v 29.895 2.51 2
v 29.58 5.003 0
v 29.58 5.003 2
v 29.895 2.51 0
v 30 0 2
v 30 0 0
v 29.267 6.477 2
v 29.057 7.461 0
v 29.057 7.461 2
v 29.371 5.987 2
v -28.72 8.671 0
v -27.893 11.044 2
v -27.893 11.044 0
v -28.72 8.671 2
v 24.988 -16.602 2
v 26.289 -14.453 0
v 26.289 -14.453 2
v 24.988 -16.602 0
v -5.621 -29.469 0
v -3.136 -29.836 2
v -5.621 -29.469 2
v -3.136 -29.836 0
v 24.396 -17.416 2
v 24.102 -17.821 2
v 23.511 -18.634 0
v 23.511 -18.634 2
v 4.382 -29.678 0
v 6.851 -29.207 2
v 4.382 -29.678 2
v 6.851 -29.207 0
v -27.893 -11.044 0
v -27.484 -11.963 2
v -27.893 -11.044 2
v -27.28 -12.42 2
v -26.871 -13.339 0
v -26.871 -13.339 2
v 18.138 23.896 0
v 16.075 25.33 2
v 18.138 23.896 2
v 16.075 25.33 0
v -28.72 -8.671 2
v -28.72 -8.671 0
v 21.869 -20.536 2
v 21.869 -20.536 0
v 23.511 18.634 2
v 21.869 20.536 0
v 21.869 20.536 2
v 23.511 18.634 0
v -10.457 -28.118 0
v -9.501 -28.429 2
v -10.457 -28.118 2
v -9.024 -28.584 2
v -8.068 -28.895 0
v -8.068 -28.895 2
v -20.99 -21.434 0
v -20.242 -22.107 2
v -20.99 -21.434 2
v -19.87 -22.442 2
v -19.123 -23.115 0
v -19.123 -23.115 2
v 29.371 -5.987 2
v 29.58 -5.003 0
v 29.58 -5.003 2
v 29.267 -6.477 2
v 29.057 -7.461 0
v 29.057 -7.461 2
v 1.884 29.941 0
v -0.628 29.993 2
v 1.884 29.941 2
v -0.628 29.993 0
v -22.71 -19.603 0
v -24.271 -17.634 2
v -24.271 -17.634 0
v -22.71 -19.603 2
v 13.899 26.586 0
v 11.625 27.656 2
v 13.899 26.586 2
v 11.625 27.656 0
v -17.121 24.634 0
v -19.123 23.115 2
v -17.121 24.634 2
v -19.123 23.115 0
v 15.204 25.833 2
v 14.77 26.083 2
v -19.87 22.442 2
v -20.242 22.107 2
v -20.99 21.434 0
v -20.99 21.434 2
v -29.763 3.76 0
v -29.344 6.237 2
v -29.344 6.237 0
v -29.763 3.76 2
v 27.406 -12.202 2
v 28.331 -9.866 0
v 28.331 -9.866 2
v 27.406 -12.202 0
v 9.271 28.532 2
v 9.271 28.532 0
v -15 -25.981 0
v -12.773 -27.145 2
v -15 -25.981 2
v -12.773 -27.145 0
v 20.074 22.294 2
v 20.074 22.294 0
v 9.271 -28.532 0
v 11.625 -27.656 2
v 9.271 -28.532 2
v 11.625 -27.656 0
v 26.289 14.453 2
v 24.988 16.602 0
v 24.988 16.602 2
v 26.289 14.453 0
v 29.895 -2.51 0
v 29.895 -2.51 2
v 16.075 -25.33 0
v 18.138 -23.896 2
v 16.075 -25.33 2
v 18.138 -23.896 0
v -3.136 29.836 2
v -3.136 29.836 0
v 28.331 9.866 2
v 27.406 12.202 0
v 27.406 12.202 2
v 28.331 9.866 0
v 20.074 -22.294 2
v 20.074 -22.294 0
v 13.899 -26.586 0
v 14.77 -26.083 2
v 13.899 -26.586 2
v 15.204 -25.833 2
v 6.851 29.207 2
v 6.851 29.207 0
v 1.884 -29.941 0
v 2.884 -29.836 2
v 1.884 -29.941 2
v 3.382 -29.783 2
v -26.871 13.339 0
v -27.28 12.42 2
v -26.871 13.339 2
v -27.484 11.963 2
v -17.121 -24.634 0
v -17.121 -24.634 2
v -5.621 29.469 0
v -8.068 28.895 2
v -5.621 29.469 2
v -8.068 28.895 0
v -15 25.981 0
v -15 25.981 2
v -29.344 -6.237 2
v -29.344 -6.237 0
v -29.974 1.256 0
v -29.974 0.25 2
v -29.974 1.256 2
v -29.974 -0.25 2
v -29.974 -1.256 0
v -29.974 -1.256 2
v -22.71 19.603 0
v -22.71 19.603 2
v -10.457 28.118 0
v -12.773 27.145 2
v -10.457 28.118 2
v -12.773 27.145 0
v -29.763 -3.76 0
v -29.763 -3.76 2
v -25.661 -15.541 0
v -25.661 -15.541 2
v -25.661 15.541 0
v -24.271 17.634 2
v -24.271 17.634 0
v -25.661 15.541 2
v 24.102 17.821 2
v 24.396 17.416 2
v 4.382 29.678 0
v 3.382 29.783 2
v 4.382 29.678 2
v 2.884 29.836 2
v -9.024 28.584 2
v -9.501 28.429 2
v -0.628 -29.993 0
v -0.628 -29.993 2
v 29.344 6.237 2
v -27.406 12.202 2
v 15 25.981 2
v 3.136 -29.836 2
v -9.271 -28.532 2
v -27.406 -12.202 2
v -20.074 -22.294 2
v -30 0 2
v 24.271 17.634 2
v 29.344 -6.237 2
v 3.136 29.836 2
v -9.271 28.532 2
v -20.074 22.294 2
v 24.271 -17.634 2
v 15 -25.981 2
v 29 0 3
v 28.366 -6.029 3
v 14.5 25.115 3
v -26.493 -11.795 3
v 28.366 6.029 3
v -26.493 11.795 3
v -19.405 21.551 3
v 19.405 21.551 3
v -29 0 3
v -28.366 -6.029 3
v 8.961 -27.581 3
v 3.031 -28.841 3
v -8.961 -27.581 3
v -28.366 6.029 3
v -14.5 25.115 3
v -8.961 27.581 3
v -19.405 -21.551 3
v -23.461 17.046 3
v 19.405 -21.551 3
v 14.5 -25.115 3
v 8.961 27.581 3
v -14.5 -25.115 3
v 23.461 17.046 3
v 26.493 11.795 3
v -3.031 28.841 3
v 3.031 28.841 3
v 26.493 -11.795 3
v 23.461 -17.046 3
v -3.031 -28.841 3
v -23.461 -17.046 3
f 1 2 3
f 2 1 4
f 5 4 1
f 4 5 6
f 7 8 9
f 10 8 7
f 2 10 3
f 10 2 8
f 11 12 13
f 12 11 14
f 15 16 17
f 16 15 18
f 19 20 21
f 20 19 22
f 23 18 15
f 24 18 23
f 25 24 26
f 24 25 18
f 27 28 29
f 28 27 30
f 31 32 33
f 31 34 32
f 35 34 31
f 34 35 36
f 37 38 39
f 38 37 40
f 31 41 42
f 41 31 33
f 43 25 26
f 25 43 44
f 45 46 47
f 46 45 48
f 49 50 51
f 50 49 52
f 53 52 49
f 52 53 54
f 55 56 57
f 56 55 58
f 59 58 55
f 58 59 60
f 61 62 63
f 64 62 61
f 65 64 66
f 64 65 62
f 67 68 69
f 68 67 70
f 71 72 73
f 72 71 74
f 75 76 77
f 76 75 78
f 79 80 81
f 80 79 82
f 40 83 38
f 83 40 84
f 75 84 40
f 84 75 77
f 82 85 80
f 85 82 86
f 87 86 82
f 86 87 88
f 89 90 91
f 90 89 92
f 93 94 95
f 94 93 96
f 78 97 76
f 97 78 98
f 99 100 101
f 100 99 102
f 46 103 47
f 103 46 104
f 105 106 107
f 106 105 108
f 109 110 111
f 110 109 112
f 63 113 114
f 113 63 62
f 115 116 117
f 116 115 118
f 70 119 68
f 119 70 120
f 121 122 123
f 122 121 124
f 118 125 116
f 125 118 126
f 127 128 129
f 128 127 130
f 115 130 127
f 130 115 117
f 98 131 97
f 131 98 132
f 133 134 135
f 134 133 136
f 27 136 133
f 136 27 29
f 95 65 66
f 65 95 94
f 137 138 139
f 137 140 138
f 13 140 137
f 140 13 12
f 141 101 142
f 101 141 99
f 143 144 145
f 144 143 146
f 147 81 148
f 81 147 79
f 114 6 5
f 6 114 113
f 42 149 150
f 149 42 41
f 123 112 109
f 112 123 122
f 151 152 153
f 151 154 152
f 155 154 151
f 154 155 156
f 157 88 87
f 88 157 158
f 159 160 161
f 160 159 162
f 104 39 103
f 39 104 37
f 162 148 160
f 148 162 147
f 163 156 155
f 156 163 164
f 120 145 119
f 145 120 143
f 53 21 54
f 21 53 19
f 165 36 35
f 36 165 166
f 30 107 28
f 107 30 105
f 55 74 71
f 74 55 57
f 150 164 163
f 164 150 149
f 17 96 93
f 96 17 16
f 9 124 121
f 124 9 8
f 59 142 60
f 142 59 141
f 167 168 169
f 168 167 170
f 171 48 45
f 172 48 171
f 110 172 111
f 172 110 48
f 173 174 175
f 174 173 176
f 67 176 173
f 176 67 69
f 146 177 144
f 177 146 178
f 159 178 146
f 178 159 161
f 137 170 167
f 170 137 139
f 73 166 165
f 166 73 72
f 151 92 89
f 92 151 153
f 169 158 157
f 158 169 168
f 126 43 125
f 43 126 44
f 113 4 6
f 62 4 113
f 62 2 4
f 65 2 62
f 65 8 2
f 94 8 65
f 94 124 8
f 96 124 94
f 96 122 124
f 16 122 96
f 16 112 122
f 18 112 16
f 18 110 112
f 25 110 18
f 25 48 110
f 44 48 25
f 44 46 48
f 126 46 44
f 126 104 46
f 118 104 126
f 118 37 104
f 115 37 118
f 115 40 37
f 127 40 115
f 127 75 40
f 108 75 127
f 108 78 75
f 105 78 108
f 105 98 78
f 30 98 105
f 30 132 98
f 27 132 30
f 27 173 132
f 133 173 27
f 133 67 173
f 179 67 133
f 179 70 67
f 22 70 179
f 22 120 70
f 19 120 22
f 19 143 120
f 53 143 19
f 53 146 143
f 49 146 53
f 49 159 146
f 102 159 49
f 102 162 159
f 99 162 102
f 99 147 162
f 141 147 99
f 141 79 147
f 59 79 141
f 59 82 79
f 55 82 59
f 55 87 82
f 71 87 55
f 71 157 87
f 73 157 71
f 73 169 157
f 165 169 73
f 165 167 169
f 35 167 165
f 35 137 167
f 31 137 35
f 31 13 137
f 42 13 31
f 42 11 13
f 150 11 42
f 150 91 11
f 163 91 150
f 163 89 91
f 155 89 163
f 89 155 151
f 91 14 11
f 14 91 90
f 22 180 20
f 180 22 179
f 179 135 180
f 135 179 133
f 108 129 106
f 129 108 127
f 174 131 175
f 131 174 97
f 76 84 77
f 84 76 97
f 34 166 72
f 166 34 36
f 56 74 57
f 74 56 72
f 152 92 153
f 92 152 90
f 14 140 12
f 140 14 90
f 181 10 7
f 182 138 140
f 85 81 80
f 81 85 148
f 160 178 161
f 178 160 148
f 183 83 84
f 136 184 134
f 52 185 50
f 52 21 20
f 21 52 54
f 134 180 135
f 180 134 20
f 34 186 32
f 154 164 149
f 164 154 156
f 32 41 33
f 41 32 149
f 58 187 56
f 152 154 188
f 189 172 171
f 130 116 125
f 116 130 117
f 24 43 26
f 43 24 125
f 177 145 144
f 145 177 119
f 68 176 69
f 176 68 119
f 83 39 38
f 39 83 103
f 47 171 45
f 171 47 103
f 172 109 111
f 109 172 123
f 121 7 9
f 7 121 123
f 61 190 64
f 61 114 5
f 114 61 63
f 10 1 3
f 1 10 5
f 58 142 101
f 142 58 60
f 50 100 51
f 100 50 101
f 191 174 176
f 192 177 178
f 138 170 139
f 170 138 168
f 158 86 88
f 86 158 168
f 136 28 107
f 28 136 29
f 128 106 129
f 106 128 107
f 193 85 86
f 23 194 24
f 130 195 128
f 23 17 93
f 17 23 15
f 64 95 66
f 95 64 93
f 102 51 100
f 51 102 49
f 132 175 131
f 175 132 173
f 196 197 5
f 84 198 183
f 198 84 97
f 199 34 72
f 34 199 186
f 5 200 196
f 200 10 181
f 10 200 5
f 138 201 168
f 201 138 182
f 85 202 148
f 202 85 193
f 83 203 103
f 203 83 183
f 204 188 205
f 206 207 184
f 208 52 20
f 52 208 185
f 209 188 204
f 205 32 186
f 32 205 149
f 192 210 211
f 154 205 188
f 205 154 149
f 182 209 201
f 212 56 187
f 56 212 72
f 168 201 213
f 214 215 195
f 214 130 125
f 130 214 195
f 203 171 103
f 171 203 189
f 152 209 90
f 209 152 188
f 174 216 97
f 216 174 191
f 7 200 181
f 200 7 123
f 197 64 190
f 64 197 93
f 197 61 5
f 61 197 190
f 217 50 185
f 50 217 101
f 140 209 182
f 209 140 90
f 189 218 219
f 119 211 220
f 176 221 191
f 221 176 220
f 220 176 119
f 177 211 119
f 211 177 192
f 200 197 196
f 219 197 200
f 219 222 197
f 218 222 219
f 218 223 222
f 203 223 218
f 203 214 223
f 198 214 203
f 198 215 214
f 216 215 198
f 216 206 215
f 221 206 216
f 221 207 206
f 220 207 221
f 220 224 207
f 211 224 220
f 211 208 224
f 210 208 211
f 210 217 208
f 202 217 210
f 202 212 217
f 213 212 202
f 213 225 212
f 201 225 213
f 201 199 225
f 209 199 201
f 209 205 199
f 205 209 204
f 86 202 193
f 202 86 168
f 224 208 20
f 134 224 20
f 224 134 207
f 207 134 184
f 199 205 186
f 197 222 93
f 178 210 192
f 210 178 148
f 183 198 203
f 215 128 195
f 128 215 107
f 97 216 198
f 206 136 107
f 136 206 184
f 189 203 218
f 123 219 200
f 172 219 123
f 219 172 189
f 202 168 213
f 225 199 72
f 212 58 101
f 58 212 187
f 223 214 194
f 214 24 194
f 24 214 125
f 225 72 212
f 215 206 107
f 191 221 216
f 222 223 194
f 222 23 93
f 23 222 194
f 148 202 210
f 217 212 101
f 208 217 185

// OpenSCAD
diameter = 60;
thickness = 3;
chamfer = 1;

cylinder(d=diameter, h=thickness-chamfer, $fn=75);
translate([0, 0, thickness-chamfer])
cylinder(d1=diameter, d2=diameter-2*chamfer, h=chamfer);
